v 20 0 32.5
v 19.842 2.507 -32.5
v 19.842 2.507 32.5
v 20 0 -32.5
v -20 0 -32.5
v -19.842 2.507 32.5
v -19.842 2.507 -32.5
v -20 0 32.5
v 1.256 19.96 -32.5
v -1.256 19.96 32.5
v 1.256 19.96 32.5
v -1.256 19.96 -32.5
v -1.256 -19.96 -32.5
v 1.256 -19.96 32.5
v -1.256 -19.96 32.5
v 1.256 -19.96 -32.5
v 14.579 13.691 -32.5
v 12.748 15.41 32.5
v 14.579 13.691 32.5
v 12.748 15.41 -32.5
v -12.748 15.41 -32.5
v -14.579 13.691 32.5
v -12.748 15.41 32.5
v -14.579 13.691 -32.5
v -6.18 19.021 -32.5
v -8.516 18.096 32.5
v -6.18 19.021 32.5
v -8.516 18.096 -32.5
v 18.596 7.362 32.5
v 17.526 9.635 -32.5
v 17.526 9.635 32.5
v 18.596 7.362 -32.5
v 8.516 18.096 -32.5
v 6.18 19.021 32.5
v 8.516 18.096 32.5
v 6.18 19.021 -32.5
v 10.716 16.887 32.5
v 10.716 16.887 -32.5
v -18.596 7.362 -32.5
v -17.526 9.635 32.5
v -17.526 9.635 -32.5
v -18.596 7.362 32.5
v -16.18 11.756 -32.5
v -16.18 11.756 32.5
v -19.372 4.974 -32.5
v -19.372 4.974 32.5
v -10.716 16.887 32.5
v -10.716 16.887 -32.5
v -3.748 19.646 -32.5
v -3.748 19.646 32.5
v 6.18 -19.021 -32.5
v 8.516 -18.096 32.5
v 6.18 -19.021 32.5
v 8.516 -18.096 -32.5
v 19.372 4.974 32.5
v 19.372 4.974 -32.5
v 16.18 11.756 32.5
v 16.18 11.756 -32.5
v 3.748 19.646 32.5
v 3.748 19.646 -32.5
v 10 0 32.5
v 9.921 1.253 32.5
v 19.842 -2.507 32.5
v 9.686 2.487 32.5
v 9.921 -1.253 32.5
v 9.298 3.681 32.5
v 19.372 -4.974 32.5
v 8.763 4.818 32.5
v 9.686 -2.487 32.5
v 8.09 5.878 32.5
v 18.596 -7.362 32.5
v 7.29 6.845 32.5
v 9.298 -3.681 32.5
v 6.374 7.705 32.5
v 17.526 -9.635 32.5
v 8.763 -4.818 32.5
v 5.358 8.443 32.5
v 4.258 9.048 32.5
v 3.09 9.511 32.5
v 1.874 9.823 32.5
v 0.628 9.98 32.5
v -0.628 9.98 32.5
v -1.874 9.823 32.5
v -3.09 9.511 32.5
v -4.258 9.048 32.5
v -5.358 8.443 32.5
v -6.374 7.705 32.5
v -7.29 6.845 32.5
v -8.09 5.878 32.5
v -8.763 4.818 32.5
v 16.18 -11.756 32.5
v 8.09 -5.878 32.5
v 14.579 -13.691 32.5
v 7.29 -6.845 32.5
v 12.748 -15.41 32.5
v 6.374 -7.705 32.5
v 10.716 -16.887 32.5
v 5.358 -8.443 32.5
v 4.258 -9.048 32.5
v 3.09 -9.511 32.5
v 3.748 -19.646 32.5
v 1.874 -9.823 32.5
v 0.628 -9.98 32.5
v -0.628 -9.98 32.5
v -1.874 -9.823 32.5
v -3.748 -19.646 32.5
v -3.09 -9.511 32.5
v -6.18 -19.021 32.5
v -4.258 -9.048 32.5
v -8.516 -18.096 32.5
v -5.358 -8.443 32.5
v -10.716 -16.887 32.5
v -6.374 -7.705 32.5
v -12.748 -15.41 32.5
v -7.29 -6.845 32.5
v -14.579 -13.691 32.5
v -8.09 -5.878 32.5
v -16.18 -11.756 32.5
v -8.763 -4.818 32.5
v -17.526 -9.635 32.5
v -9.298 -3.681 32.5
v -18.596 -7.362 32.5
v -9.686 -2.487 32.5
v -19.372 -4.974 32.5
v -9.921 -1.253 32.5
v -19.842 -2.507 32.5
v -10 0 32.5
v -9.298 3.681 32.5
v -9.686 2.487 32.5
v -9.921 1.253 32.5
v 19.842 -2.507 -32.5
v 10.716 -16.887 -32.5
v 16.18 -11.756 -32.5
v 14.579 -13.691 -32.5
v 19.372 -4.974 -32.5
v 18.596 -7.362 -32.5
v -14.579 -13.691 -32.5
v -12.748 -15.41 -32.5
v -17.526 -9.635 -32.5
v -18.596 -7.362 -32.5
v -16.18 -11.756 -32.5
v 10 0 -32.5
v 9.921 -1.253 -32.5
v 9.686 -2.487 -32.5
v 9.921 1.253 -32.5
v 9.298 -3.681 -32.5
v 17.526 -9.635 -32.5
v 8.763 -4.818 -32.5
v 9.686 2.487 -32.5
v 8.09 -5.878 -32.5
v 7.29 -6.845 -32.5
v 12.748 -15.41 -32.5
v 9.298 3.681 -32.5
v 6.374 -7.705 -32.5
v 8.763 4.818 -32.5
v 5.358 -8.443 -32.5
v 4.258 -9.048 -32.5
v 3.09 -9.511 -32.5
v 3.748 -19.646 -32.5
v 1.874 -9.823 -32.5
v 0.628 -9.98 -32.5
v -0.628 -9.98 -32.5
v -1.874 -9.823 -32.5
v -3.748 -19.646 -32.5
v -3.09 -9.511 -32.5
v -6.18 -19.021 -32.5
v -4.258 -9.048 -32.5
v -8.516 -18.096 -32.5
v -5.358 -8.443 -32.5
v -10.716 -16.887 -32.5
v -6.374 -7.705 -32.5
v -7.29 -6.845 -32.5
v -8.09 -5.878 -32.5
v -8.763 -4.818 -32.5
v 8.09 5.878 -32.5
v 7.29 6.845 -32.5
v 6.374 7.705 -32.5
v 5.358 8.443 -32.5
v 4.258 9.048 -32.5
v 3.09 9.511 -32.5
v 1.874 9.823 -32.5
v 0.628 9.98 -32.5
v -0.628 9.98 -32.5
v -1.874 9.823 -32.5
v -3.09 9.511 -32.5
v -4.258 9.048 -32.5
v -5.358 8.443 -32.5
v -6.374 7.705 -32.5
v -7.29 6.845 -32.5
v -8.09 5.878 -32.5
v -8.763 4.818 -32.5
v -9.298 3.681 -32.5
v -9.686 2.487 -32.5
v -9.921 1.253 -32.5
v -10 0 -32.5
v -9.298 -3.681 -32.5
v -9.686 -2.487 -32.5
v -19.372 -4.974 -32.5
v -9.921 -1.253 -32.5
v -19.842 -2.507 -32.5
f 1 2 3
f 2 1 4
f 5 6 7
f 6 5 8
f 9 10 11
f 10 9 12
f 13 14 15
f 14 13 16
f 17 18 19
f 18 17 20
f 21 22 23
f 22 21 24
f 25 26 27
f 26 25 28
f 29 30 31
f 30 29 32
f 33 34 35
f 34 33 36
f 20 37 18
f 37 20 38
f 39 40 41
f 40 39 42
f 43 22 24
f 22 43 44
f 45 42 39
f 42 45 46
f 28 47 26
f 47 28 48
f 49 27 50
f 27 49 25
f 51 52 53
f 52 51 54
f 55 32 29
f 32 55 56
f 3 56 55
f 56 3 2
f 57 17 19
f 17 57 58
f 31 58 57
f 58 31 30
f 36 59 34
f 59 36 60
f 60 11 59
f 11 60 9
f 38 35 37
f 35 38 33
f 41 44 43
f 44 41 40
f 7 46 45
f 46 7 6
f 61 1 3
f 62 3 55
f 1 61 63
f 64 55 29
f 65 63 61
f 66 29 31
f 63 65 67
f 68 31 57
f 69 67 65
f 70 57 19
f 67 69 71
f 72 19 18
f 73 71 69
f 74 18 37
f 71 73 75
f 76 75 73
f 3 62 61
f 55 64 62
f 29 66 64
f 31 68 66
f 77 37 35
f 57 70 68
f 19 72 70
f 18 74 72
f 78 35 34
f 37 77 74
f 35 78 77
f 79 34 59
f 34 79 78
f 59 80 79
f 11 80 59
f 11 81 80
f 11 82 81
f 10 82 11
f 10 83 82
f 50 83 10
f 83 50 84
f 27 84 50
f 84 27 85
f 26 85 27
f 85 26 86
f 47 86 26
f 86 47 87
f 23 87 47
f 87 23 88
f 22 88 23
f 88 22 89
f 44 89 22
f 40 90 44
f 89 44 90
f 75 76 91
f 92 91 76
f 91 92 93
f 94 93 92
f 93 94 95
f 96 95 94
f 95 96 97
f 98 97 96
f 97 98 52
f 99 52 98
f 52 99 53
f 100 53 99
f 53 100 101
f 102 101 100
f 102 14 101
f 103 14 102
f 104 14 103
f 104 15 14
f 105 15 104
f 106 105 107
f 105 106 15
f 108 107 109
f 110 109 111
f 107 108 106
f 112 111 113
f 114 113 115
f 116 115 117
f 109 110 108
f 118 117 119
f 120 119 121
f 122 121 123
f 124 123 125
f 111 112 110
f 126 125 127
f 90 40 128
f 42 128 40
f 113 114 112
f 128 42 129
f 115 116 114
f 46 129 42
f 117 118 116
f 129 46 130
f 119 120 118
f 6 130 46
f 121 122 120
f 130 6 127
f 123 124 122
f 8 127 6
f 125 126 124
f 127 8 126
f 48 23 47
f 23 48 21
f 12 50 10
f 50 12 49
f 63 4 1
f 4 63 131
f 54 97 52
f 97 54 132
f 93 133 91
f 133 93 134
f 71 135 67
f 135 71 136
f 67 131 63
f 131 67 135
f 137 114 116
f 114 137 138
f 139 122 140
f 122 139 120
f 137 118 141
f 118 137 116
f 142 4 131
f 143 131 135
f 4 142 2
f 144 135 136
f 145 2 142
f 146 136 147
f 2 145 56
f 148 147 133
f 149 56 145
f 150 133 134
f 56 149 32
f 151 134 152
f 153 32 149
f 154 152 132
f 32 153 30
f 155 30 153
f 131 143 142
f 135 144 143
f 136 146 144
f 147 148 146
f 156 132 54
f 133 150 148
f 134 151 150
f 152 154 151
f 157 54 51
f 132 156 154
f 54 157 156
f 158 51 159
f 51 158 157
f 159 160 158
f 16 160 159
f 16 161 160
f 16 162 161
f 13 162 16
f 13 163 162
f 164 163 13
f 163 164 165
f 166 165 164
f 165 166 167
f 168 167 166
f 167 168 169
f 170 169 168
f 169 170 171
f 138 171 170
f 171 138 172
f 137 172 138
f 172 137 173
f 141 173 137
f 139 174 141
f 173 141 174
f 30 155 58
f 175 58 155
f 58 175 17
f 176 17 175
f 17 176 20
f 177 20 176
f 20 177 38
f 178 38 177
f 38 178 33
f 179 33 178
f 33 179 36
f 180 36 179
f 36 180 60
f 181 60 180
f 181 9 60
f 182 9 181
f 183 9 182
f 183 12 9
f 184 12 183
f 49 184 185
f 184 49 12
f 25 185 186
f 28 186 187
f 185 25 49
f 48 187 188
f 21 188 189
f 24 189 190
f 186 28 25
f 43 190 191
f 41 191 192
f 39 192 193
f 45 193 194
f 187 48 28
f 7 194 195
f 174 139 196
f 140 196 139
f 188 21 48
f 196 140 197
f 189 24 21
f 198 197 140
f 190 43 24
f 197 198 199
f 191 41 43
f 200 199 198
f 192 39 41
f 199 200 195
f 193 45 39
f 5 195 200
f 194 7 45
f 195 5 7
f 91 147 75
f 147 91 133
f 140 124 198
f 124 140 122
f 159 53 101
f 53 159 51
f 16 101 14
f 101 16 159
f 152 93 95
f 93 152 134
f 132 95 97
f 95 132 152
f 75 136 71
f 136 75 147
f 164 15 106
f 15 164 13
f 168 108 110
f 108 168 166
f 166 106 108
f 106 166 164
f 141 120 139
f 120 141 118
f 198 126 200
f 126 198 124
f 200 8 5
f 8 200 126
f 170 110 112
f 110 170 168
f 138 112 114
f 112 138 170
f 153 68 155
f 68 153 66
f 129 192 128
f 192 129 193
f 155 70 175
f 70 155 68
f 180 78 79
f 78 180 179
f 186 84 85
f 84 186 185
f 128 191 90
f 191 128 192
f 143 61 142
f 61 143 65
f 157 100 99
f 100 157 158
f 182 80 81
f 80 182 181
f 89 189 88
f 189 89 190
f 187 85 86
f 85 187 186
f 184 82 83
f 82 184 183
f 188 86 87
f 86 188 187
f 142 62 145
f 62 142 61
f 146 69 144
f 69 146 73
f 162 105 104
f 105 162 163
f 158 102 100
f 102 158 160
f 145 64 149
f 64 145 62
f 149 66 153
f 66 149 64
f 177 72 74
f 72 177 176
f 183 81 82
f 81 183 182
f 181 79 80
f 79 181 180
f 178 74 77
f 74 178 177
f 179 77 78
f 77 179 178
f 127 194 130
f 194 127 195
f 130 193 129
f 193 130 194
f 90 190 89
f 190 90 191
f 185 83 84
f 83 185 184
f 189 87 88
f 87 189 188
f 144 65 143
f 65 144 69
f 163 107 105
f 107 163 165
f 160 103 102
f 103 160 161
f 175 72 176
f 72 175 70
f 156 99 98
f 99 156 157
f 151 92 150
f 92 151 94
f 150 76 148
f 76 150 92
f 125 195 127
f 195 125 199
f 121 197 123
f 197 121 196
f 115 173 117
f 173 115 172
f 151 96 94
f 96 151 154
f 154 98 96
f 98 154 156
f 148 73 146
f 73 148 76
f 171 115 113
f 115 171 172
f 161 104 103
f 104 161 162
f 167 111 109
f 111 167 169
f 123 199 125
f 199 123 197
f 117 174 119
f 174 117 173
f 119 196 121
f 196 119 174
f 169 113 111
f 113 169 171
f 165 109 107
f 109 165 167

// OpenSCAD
$fn = 50;


difference() {
	union() {
		translate(v = [0, 0, -32.5000000000]) {
			cylinder(h = 65, r = 20.0000000000);
		}
	}
	union() {
		translate(v = [0, 0, -100.0000000000]) {
			cylinder(h = 200, r = 10);
		}
	}
}
